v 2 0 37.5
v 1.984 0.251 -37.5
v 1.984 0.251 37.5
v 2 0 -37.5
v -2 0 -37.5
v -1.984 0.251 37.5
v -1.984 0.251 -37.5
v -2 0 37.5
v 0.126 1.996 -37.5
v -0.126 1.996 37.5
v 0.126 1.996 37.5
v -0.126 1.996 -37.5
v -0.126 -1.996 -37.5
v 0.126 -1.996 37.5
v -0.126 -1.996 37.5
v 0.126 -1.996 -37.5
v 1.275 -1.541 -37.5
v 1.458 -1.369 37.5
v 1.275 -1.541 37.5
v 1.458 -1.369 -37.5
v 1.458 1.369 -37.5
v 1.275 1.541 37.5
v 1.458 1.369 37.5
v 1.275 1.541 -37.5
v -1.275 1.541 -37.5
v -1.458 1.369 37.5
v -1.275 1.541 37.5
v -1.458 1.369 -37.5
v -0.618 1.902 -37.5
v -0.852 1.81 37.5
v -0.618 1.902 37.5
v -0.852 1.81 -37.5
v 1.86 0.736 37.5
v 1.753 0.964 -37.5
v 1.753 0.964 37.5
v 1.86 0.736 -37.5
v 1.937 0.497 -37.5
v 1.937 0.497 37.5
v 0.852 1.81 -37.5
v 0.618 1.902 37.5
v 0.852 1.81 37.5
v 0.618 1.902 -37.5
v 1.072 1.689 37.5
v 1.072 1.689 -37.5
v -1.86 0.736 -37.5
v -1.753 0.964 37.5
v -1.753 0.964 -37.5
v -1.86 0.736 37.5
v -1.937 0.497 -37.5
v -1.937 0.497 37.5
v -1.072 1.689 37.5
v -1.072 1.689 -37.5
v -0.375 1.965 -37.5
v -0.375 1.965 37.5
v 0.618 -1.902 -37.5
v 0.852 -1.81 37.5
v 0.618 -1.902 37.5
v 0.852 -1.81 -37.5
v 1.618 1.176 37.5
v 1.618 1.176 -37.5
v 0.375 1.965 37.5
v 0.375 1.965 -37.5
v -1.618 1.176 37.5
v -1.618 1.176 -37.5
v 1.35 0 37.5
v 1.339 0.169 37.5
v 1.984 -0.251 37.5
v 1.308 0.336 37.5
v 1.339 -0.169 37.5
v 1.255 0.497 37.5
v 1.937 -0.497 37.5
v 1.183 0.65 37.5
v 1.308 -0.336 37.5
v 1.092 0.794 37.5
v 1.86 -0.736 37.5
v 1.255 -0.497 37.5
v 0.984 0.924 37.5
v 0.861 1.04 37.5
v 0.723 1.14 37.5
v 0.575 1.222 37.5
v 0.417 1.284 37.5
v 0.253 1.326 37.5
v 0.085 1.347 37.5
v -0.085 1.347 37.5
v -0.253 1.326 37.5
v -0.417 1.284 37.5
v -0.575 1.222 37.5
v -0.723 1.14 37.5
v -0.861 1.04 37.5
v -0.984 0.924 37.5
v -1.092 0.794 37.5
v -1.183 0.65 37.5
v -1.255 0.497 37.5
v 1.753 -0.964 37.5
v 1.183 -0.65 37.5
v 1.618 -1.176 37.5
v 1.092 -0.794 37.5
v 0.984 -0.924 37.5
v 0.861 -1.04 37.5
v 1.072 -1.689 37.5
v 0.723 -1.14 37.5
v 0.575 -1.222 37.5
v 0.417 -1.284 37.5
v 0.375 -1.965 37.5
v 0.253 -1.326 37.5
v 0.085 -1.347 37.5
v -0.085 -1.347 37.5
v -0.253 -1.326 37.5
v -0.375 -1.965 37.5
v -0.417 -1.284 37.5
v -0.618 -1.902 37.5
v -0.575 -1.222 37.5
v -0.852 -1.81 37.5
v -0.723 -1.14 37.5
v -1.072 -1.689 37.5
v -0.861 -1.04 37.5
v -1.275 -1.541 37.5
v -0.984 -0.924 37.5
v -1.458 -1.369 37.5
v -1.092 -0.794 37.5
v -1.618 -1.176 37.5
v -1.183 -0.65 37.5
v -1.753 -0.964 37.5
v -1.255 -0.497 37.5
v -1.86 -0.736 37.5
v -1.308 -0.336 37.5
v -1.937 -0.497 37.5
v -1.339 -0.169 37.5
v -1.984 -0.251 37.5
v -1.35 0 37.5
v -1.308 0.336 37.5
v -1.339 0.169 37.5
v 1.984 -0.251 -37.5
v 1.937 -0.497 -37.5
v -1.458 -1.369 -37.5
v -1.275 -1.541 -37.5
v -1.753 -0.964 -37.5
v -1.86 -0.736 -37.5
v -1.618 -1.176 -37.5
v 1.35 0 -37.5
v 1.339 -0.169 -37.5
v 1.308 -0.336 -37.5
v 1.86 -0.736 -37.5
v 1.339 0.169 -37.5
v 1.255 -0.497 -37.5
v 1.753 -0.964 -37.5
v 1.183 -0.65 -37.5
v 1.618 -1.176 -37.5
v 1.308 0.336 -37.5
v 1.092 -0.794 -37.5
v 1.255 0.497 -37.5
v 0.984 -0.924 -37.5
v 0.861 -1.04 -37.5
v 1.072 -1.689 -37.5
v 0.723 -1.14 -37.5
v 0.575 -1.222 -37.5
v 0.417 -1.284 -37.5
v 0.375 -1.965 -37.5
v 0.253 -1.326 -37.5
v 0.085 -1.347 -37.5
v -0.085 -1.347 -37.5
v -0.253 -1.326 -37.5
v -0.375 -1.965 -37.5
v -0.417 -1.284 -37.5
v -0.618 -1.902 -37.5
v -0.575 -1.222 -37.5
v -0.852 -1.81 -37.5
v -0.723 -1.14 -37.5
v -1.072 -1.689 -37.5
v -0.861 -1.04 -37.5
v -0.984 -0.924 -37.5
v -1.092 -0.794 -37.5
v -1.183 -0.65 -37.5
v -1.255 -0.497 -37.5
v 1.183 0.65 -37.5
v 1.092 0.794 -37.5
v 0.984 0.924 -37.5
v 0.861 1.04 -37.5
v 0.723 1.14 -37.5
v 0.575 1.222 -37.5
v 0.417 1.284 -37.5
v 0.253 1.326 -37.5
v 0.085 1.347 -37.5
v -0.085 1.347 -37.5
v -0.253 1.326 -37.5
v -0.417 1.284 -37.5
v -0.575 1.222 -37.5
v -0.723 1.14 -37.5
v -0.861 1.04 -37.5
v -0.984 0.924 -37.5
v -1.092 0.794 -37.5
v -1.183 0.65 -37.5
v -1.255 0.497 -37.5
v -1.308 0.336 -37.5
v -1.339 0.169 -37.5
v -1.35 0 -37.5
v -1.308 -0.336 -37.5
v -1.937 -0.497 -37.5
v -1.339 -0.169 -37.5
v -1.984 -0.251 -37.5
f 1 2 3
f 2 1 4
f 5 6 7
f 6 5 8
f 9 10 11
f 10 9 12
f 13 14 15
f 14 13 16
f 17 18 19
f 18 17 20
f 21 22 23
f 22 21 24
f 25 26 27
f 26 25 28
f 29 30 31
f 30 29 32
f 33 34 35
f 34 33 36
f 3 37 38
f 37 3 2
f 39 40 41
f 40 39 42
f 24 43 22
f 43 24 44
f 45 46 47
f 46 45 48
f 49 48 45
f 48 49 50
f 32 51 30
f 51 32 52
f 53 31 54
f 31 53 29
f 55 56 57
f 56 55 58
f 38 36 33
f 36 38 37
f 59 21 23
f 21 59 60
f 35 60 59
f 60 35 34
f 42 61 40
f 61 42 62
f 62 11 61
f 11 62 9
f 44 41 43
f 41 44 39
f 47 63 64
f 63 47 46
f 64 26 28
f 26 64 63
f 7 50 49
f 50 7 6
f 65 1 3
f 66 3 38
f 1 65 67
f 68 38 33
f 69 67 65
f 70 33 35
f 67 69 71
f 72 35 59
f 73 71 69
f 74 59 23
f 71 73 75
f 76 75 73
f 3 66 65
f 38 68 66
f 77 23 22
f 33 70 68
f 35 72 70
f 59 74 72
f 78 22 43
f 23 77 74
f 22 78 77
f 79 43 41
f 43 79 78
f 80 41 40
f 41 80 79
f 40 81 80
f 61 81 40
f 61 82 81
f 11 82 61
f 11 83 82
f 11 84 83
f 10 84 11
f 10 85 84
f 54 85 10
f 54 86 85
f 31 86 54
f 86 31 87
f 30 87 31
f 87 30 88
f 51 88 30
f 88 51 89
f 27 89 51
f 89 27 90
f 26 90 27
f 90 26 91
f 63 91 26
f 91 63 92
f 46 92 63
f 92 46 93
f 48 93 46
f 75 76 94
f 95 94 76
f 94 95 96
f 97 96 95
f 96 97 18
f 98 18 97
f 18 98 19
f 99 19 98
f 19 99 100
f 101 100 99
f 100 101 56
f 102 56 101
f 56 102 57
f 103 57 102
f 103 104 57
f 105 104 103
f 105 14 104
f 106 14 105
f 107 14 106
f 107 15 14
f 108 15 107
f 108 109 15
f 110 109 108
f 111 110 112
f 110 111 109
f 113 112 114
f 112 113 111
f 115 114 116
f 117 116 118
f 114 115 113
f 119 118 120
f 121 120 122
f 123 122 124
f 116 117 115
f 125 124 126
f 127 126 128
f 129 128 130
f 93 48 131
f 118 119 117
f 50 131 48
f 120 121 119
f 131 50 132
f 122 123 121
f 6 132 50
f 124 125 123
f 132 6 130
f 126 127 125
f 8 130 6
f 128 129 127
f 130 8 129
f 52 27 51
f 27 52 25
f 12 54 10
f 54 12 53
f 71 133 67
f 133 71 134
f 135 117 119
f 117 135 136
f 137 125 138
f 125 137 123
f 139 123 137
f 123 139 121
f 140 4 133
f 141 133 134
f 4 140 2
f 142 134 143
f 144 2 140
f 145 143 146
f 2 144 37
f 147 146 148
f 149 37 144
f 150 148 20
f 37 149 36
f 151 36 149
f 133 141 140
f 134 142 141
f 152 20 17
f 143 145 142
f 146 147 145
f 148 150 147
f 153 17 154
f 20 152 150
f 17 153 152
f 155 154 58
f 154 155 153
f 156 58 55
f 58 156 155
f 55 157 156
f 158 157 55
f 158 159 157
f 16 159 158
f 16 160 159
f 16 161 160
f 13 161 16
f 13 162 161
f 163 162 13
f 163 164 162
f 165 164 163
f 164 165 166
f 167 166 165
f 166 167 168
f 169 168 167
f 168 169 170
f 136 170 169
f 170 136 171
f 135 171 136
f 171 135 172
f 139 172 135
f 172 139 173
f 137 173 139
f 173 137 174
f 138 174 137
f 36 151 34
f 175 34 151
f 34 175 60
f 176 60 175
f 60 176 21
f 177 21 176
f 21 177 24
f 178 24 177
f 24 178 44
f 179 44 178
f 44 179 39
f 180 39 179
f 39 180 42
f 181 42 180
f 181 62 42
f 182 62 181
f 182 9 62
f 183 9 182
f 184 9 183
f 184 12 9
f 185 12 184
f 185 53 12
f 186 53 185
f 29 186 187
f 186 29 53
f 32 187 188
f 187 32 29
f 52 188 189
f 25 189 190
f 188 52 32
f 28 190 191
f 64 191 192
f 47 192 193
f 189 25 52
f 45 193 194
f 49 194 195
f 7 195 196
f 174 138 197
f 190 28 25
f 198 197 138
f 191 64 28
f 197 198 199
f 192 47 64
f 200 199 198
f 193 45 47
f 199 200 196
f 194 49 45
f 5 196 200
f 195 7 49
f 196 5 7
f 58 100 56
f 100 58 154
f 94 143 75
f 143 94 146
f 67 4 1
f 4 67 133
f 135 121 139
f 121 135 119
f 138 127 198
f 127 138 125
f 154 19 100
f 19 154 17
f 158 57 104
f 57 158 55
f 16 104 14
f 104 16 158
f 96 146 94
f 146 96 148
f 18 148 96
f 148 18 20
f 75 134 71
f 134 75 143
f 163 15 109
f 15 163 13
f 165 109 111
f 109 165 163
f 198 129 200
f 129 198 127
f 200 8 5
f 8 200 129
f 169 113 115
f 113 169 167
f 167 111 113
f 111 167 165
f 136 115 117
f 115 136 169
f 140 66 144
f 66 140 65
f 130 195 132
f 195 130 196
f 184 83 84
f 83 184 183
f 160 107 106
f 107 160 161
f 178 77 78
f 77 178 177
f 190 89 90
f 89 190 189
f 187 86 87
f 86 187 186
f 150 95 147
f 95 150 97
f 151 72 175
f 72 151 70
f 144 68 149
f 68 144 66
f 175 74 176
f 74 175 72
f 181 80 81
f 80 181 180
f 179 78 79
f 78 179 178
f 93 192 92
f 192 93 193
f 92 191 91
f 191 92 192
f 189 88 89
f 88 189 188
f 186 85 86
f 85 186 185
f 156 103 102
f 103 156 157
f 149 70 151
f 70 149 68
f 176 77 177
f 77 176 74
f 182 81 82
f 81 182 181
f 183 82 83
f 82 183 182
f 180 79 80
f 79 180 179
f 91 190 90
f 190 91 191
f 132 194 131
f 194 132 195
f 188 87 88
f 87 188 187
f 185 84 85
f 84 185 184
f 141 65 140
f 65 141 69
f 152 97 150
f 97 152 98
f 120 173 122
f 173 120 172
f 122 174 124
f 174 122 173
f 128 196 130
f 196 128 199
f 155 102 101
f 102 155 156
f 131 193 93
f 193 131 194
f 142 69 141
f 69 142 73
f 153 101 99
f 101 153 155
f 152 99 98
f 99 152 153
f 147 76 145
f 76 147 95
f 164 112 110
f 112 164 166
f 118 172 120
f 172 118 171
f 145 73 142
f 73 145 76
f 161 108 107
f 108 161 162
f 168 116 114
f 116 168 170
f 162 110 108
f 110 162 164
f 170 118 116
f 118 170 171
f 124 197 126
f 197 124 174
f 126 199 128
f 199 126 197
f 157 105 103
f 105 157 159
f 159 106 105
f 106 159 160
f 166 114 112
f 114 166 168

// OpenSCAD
$fn = 50;


difference() {
	union() {
		translate(v = [0, 0, -37.5000000000]) {
			cylinder(h = 75, r = 2.0000000000);
		}
	}
	union() {
		translate(v = [0, 0, -100.0000000000]) {
			cylinder(h = 200, r = 1.3500000000);
		}
	}
}
